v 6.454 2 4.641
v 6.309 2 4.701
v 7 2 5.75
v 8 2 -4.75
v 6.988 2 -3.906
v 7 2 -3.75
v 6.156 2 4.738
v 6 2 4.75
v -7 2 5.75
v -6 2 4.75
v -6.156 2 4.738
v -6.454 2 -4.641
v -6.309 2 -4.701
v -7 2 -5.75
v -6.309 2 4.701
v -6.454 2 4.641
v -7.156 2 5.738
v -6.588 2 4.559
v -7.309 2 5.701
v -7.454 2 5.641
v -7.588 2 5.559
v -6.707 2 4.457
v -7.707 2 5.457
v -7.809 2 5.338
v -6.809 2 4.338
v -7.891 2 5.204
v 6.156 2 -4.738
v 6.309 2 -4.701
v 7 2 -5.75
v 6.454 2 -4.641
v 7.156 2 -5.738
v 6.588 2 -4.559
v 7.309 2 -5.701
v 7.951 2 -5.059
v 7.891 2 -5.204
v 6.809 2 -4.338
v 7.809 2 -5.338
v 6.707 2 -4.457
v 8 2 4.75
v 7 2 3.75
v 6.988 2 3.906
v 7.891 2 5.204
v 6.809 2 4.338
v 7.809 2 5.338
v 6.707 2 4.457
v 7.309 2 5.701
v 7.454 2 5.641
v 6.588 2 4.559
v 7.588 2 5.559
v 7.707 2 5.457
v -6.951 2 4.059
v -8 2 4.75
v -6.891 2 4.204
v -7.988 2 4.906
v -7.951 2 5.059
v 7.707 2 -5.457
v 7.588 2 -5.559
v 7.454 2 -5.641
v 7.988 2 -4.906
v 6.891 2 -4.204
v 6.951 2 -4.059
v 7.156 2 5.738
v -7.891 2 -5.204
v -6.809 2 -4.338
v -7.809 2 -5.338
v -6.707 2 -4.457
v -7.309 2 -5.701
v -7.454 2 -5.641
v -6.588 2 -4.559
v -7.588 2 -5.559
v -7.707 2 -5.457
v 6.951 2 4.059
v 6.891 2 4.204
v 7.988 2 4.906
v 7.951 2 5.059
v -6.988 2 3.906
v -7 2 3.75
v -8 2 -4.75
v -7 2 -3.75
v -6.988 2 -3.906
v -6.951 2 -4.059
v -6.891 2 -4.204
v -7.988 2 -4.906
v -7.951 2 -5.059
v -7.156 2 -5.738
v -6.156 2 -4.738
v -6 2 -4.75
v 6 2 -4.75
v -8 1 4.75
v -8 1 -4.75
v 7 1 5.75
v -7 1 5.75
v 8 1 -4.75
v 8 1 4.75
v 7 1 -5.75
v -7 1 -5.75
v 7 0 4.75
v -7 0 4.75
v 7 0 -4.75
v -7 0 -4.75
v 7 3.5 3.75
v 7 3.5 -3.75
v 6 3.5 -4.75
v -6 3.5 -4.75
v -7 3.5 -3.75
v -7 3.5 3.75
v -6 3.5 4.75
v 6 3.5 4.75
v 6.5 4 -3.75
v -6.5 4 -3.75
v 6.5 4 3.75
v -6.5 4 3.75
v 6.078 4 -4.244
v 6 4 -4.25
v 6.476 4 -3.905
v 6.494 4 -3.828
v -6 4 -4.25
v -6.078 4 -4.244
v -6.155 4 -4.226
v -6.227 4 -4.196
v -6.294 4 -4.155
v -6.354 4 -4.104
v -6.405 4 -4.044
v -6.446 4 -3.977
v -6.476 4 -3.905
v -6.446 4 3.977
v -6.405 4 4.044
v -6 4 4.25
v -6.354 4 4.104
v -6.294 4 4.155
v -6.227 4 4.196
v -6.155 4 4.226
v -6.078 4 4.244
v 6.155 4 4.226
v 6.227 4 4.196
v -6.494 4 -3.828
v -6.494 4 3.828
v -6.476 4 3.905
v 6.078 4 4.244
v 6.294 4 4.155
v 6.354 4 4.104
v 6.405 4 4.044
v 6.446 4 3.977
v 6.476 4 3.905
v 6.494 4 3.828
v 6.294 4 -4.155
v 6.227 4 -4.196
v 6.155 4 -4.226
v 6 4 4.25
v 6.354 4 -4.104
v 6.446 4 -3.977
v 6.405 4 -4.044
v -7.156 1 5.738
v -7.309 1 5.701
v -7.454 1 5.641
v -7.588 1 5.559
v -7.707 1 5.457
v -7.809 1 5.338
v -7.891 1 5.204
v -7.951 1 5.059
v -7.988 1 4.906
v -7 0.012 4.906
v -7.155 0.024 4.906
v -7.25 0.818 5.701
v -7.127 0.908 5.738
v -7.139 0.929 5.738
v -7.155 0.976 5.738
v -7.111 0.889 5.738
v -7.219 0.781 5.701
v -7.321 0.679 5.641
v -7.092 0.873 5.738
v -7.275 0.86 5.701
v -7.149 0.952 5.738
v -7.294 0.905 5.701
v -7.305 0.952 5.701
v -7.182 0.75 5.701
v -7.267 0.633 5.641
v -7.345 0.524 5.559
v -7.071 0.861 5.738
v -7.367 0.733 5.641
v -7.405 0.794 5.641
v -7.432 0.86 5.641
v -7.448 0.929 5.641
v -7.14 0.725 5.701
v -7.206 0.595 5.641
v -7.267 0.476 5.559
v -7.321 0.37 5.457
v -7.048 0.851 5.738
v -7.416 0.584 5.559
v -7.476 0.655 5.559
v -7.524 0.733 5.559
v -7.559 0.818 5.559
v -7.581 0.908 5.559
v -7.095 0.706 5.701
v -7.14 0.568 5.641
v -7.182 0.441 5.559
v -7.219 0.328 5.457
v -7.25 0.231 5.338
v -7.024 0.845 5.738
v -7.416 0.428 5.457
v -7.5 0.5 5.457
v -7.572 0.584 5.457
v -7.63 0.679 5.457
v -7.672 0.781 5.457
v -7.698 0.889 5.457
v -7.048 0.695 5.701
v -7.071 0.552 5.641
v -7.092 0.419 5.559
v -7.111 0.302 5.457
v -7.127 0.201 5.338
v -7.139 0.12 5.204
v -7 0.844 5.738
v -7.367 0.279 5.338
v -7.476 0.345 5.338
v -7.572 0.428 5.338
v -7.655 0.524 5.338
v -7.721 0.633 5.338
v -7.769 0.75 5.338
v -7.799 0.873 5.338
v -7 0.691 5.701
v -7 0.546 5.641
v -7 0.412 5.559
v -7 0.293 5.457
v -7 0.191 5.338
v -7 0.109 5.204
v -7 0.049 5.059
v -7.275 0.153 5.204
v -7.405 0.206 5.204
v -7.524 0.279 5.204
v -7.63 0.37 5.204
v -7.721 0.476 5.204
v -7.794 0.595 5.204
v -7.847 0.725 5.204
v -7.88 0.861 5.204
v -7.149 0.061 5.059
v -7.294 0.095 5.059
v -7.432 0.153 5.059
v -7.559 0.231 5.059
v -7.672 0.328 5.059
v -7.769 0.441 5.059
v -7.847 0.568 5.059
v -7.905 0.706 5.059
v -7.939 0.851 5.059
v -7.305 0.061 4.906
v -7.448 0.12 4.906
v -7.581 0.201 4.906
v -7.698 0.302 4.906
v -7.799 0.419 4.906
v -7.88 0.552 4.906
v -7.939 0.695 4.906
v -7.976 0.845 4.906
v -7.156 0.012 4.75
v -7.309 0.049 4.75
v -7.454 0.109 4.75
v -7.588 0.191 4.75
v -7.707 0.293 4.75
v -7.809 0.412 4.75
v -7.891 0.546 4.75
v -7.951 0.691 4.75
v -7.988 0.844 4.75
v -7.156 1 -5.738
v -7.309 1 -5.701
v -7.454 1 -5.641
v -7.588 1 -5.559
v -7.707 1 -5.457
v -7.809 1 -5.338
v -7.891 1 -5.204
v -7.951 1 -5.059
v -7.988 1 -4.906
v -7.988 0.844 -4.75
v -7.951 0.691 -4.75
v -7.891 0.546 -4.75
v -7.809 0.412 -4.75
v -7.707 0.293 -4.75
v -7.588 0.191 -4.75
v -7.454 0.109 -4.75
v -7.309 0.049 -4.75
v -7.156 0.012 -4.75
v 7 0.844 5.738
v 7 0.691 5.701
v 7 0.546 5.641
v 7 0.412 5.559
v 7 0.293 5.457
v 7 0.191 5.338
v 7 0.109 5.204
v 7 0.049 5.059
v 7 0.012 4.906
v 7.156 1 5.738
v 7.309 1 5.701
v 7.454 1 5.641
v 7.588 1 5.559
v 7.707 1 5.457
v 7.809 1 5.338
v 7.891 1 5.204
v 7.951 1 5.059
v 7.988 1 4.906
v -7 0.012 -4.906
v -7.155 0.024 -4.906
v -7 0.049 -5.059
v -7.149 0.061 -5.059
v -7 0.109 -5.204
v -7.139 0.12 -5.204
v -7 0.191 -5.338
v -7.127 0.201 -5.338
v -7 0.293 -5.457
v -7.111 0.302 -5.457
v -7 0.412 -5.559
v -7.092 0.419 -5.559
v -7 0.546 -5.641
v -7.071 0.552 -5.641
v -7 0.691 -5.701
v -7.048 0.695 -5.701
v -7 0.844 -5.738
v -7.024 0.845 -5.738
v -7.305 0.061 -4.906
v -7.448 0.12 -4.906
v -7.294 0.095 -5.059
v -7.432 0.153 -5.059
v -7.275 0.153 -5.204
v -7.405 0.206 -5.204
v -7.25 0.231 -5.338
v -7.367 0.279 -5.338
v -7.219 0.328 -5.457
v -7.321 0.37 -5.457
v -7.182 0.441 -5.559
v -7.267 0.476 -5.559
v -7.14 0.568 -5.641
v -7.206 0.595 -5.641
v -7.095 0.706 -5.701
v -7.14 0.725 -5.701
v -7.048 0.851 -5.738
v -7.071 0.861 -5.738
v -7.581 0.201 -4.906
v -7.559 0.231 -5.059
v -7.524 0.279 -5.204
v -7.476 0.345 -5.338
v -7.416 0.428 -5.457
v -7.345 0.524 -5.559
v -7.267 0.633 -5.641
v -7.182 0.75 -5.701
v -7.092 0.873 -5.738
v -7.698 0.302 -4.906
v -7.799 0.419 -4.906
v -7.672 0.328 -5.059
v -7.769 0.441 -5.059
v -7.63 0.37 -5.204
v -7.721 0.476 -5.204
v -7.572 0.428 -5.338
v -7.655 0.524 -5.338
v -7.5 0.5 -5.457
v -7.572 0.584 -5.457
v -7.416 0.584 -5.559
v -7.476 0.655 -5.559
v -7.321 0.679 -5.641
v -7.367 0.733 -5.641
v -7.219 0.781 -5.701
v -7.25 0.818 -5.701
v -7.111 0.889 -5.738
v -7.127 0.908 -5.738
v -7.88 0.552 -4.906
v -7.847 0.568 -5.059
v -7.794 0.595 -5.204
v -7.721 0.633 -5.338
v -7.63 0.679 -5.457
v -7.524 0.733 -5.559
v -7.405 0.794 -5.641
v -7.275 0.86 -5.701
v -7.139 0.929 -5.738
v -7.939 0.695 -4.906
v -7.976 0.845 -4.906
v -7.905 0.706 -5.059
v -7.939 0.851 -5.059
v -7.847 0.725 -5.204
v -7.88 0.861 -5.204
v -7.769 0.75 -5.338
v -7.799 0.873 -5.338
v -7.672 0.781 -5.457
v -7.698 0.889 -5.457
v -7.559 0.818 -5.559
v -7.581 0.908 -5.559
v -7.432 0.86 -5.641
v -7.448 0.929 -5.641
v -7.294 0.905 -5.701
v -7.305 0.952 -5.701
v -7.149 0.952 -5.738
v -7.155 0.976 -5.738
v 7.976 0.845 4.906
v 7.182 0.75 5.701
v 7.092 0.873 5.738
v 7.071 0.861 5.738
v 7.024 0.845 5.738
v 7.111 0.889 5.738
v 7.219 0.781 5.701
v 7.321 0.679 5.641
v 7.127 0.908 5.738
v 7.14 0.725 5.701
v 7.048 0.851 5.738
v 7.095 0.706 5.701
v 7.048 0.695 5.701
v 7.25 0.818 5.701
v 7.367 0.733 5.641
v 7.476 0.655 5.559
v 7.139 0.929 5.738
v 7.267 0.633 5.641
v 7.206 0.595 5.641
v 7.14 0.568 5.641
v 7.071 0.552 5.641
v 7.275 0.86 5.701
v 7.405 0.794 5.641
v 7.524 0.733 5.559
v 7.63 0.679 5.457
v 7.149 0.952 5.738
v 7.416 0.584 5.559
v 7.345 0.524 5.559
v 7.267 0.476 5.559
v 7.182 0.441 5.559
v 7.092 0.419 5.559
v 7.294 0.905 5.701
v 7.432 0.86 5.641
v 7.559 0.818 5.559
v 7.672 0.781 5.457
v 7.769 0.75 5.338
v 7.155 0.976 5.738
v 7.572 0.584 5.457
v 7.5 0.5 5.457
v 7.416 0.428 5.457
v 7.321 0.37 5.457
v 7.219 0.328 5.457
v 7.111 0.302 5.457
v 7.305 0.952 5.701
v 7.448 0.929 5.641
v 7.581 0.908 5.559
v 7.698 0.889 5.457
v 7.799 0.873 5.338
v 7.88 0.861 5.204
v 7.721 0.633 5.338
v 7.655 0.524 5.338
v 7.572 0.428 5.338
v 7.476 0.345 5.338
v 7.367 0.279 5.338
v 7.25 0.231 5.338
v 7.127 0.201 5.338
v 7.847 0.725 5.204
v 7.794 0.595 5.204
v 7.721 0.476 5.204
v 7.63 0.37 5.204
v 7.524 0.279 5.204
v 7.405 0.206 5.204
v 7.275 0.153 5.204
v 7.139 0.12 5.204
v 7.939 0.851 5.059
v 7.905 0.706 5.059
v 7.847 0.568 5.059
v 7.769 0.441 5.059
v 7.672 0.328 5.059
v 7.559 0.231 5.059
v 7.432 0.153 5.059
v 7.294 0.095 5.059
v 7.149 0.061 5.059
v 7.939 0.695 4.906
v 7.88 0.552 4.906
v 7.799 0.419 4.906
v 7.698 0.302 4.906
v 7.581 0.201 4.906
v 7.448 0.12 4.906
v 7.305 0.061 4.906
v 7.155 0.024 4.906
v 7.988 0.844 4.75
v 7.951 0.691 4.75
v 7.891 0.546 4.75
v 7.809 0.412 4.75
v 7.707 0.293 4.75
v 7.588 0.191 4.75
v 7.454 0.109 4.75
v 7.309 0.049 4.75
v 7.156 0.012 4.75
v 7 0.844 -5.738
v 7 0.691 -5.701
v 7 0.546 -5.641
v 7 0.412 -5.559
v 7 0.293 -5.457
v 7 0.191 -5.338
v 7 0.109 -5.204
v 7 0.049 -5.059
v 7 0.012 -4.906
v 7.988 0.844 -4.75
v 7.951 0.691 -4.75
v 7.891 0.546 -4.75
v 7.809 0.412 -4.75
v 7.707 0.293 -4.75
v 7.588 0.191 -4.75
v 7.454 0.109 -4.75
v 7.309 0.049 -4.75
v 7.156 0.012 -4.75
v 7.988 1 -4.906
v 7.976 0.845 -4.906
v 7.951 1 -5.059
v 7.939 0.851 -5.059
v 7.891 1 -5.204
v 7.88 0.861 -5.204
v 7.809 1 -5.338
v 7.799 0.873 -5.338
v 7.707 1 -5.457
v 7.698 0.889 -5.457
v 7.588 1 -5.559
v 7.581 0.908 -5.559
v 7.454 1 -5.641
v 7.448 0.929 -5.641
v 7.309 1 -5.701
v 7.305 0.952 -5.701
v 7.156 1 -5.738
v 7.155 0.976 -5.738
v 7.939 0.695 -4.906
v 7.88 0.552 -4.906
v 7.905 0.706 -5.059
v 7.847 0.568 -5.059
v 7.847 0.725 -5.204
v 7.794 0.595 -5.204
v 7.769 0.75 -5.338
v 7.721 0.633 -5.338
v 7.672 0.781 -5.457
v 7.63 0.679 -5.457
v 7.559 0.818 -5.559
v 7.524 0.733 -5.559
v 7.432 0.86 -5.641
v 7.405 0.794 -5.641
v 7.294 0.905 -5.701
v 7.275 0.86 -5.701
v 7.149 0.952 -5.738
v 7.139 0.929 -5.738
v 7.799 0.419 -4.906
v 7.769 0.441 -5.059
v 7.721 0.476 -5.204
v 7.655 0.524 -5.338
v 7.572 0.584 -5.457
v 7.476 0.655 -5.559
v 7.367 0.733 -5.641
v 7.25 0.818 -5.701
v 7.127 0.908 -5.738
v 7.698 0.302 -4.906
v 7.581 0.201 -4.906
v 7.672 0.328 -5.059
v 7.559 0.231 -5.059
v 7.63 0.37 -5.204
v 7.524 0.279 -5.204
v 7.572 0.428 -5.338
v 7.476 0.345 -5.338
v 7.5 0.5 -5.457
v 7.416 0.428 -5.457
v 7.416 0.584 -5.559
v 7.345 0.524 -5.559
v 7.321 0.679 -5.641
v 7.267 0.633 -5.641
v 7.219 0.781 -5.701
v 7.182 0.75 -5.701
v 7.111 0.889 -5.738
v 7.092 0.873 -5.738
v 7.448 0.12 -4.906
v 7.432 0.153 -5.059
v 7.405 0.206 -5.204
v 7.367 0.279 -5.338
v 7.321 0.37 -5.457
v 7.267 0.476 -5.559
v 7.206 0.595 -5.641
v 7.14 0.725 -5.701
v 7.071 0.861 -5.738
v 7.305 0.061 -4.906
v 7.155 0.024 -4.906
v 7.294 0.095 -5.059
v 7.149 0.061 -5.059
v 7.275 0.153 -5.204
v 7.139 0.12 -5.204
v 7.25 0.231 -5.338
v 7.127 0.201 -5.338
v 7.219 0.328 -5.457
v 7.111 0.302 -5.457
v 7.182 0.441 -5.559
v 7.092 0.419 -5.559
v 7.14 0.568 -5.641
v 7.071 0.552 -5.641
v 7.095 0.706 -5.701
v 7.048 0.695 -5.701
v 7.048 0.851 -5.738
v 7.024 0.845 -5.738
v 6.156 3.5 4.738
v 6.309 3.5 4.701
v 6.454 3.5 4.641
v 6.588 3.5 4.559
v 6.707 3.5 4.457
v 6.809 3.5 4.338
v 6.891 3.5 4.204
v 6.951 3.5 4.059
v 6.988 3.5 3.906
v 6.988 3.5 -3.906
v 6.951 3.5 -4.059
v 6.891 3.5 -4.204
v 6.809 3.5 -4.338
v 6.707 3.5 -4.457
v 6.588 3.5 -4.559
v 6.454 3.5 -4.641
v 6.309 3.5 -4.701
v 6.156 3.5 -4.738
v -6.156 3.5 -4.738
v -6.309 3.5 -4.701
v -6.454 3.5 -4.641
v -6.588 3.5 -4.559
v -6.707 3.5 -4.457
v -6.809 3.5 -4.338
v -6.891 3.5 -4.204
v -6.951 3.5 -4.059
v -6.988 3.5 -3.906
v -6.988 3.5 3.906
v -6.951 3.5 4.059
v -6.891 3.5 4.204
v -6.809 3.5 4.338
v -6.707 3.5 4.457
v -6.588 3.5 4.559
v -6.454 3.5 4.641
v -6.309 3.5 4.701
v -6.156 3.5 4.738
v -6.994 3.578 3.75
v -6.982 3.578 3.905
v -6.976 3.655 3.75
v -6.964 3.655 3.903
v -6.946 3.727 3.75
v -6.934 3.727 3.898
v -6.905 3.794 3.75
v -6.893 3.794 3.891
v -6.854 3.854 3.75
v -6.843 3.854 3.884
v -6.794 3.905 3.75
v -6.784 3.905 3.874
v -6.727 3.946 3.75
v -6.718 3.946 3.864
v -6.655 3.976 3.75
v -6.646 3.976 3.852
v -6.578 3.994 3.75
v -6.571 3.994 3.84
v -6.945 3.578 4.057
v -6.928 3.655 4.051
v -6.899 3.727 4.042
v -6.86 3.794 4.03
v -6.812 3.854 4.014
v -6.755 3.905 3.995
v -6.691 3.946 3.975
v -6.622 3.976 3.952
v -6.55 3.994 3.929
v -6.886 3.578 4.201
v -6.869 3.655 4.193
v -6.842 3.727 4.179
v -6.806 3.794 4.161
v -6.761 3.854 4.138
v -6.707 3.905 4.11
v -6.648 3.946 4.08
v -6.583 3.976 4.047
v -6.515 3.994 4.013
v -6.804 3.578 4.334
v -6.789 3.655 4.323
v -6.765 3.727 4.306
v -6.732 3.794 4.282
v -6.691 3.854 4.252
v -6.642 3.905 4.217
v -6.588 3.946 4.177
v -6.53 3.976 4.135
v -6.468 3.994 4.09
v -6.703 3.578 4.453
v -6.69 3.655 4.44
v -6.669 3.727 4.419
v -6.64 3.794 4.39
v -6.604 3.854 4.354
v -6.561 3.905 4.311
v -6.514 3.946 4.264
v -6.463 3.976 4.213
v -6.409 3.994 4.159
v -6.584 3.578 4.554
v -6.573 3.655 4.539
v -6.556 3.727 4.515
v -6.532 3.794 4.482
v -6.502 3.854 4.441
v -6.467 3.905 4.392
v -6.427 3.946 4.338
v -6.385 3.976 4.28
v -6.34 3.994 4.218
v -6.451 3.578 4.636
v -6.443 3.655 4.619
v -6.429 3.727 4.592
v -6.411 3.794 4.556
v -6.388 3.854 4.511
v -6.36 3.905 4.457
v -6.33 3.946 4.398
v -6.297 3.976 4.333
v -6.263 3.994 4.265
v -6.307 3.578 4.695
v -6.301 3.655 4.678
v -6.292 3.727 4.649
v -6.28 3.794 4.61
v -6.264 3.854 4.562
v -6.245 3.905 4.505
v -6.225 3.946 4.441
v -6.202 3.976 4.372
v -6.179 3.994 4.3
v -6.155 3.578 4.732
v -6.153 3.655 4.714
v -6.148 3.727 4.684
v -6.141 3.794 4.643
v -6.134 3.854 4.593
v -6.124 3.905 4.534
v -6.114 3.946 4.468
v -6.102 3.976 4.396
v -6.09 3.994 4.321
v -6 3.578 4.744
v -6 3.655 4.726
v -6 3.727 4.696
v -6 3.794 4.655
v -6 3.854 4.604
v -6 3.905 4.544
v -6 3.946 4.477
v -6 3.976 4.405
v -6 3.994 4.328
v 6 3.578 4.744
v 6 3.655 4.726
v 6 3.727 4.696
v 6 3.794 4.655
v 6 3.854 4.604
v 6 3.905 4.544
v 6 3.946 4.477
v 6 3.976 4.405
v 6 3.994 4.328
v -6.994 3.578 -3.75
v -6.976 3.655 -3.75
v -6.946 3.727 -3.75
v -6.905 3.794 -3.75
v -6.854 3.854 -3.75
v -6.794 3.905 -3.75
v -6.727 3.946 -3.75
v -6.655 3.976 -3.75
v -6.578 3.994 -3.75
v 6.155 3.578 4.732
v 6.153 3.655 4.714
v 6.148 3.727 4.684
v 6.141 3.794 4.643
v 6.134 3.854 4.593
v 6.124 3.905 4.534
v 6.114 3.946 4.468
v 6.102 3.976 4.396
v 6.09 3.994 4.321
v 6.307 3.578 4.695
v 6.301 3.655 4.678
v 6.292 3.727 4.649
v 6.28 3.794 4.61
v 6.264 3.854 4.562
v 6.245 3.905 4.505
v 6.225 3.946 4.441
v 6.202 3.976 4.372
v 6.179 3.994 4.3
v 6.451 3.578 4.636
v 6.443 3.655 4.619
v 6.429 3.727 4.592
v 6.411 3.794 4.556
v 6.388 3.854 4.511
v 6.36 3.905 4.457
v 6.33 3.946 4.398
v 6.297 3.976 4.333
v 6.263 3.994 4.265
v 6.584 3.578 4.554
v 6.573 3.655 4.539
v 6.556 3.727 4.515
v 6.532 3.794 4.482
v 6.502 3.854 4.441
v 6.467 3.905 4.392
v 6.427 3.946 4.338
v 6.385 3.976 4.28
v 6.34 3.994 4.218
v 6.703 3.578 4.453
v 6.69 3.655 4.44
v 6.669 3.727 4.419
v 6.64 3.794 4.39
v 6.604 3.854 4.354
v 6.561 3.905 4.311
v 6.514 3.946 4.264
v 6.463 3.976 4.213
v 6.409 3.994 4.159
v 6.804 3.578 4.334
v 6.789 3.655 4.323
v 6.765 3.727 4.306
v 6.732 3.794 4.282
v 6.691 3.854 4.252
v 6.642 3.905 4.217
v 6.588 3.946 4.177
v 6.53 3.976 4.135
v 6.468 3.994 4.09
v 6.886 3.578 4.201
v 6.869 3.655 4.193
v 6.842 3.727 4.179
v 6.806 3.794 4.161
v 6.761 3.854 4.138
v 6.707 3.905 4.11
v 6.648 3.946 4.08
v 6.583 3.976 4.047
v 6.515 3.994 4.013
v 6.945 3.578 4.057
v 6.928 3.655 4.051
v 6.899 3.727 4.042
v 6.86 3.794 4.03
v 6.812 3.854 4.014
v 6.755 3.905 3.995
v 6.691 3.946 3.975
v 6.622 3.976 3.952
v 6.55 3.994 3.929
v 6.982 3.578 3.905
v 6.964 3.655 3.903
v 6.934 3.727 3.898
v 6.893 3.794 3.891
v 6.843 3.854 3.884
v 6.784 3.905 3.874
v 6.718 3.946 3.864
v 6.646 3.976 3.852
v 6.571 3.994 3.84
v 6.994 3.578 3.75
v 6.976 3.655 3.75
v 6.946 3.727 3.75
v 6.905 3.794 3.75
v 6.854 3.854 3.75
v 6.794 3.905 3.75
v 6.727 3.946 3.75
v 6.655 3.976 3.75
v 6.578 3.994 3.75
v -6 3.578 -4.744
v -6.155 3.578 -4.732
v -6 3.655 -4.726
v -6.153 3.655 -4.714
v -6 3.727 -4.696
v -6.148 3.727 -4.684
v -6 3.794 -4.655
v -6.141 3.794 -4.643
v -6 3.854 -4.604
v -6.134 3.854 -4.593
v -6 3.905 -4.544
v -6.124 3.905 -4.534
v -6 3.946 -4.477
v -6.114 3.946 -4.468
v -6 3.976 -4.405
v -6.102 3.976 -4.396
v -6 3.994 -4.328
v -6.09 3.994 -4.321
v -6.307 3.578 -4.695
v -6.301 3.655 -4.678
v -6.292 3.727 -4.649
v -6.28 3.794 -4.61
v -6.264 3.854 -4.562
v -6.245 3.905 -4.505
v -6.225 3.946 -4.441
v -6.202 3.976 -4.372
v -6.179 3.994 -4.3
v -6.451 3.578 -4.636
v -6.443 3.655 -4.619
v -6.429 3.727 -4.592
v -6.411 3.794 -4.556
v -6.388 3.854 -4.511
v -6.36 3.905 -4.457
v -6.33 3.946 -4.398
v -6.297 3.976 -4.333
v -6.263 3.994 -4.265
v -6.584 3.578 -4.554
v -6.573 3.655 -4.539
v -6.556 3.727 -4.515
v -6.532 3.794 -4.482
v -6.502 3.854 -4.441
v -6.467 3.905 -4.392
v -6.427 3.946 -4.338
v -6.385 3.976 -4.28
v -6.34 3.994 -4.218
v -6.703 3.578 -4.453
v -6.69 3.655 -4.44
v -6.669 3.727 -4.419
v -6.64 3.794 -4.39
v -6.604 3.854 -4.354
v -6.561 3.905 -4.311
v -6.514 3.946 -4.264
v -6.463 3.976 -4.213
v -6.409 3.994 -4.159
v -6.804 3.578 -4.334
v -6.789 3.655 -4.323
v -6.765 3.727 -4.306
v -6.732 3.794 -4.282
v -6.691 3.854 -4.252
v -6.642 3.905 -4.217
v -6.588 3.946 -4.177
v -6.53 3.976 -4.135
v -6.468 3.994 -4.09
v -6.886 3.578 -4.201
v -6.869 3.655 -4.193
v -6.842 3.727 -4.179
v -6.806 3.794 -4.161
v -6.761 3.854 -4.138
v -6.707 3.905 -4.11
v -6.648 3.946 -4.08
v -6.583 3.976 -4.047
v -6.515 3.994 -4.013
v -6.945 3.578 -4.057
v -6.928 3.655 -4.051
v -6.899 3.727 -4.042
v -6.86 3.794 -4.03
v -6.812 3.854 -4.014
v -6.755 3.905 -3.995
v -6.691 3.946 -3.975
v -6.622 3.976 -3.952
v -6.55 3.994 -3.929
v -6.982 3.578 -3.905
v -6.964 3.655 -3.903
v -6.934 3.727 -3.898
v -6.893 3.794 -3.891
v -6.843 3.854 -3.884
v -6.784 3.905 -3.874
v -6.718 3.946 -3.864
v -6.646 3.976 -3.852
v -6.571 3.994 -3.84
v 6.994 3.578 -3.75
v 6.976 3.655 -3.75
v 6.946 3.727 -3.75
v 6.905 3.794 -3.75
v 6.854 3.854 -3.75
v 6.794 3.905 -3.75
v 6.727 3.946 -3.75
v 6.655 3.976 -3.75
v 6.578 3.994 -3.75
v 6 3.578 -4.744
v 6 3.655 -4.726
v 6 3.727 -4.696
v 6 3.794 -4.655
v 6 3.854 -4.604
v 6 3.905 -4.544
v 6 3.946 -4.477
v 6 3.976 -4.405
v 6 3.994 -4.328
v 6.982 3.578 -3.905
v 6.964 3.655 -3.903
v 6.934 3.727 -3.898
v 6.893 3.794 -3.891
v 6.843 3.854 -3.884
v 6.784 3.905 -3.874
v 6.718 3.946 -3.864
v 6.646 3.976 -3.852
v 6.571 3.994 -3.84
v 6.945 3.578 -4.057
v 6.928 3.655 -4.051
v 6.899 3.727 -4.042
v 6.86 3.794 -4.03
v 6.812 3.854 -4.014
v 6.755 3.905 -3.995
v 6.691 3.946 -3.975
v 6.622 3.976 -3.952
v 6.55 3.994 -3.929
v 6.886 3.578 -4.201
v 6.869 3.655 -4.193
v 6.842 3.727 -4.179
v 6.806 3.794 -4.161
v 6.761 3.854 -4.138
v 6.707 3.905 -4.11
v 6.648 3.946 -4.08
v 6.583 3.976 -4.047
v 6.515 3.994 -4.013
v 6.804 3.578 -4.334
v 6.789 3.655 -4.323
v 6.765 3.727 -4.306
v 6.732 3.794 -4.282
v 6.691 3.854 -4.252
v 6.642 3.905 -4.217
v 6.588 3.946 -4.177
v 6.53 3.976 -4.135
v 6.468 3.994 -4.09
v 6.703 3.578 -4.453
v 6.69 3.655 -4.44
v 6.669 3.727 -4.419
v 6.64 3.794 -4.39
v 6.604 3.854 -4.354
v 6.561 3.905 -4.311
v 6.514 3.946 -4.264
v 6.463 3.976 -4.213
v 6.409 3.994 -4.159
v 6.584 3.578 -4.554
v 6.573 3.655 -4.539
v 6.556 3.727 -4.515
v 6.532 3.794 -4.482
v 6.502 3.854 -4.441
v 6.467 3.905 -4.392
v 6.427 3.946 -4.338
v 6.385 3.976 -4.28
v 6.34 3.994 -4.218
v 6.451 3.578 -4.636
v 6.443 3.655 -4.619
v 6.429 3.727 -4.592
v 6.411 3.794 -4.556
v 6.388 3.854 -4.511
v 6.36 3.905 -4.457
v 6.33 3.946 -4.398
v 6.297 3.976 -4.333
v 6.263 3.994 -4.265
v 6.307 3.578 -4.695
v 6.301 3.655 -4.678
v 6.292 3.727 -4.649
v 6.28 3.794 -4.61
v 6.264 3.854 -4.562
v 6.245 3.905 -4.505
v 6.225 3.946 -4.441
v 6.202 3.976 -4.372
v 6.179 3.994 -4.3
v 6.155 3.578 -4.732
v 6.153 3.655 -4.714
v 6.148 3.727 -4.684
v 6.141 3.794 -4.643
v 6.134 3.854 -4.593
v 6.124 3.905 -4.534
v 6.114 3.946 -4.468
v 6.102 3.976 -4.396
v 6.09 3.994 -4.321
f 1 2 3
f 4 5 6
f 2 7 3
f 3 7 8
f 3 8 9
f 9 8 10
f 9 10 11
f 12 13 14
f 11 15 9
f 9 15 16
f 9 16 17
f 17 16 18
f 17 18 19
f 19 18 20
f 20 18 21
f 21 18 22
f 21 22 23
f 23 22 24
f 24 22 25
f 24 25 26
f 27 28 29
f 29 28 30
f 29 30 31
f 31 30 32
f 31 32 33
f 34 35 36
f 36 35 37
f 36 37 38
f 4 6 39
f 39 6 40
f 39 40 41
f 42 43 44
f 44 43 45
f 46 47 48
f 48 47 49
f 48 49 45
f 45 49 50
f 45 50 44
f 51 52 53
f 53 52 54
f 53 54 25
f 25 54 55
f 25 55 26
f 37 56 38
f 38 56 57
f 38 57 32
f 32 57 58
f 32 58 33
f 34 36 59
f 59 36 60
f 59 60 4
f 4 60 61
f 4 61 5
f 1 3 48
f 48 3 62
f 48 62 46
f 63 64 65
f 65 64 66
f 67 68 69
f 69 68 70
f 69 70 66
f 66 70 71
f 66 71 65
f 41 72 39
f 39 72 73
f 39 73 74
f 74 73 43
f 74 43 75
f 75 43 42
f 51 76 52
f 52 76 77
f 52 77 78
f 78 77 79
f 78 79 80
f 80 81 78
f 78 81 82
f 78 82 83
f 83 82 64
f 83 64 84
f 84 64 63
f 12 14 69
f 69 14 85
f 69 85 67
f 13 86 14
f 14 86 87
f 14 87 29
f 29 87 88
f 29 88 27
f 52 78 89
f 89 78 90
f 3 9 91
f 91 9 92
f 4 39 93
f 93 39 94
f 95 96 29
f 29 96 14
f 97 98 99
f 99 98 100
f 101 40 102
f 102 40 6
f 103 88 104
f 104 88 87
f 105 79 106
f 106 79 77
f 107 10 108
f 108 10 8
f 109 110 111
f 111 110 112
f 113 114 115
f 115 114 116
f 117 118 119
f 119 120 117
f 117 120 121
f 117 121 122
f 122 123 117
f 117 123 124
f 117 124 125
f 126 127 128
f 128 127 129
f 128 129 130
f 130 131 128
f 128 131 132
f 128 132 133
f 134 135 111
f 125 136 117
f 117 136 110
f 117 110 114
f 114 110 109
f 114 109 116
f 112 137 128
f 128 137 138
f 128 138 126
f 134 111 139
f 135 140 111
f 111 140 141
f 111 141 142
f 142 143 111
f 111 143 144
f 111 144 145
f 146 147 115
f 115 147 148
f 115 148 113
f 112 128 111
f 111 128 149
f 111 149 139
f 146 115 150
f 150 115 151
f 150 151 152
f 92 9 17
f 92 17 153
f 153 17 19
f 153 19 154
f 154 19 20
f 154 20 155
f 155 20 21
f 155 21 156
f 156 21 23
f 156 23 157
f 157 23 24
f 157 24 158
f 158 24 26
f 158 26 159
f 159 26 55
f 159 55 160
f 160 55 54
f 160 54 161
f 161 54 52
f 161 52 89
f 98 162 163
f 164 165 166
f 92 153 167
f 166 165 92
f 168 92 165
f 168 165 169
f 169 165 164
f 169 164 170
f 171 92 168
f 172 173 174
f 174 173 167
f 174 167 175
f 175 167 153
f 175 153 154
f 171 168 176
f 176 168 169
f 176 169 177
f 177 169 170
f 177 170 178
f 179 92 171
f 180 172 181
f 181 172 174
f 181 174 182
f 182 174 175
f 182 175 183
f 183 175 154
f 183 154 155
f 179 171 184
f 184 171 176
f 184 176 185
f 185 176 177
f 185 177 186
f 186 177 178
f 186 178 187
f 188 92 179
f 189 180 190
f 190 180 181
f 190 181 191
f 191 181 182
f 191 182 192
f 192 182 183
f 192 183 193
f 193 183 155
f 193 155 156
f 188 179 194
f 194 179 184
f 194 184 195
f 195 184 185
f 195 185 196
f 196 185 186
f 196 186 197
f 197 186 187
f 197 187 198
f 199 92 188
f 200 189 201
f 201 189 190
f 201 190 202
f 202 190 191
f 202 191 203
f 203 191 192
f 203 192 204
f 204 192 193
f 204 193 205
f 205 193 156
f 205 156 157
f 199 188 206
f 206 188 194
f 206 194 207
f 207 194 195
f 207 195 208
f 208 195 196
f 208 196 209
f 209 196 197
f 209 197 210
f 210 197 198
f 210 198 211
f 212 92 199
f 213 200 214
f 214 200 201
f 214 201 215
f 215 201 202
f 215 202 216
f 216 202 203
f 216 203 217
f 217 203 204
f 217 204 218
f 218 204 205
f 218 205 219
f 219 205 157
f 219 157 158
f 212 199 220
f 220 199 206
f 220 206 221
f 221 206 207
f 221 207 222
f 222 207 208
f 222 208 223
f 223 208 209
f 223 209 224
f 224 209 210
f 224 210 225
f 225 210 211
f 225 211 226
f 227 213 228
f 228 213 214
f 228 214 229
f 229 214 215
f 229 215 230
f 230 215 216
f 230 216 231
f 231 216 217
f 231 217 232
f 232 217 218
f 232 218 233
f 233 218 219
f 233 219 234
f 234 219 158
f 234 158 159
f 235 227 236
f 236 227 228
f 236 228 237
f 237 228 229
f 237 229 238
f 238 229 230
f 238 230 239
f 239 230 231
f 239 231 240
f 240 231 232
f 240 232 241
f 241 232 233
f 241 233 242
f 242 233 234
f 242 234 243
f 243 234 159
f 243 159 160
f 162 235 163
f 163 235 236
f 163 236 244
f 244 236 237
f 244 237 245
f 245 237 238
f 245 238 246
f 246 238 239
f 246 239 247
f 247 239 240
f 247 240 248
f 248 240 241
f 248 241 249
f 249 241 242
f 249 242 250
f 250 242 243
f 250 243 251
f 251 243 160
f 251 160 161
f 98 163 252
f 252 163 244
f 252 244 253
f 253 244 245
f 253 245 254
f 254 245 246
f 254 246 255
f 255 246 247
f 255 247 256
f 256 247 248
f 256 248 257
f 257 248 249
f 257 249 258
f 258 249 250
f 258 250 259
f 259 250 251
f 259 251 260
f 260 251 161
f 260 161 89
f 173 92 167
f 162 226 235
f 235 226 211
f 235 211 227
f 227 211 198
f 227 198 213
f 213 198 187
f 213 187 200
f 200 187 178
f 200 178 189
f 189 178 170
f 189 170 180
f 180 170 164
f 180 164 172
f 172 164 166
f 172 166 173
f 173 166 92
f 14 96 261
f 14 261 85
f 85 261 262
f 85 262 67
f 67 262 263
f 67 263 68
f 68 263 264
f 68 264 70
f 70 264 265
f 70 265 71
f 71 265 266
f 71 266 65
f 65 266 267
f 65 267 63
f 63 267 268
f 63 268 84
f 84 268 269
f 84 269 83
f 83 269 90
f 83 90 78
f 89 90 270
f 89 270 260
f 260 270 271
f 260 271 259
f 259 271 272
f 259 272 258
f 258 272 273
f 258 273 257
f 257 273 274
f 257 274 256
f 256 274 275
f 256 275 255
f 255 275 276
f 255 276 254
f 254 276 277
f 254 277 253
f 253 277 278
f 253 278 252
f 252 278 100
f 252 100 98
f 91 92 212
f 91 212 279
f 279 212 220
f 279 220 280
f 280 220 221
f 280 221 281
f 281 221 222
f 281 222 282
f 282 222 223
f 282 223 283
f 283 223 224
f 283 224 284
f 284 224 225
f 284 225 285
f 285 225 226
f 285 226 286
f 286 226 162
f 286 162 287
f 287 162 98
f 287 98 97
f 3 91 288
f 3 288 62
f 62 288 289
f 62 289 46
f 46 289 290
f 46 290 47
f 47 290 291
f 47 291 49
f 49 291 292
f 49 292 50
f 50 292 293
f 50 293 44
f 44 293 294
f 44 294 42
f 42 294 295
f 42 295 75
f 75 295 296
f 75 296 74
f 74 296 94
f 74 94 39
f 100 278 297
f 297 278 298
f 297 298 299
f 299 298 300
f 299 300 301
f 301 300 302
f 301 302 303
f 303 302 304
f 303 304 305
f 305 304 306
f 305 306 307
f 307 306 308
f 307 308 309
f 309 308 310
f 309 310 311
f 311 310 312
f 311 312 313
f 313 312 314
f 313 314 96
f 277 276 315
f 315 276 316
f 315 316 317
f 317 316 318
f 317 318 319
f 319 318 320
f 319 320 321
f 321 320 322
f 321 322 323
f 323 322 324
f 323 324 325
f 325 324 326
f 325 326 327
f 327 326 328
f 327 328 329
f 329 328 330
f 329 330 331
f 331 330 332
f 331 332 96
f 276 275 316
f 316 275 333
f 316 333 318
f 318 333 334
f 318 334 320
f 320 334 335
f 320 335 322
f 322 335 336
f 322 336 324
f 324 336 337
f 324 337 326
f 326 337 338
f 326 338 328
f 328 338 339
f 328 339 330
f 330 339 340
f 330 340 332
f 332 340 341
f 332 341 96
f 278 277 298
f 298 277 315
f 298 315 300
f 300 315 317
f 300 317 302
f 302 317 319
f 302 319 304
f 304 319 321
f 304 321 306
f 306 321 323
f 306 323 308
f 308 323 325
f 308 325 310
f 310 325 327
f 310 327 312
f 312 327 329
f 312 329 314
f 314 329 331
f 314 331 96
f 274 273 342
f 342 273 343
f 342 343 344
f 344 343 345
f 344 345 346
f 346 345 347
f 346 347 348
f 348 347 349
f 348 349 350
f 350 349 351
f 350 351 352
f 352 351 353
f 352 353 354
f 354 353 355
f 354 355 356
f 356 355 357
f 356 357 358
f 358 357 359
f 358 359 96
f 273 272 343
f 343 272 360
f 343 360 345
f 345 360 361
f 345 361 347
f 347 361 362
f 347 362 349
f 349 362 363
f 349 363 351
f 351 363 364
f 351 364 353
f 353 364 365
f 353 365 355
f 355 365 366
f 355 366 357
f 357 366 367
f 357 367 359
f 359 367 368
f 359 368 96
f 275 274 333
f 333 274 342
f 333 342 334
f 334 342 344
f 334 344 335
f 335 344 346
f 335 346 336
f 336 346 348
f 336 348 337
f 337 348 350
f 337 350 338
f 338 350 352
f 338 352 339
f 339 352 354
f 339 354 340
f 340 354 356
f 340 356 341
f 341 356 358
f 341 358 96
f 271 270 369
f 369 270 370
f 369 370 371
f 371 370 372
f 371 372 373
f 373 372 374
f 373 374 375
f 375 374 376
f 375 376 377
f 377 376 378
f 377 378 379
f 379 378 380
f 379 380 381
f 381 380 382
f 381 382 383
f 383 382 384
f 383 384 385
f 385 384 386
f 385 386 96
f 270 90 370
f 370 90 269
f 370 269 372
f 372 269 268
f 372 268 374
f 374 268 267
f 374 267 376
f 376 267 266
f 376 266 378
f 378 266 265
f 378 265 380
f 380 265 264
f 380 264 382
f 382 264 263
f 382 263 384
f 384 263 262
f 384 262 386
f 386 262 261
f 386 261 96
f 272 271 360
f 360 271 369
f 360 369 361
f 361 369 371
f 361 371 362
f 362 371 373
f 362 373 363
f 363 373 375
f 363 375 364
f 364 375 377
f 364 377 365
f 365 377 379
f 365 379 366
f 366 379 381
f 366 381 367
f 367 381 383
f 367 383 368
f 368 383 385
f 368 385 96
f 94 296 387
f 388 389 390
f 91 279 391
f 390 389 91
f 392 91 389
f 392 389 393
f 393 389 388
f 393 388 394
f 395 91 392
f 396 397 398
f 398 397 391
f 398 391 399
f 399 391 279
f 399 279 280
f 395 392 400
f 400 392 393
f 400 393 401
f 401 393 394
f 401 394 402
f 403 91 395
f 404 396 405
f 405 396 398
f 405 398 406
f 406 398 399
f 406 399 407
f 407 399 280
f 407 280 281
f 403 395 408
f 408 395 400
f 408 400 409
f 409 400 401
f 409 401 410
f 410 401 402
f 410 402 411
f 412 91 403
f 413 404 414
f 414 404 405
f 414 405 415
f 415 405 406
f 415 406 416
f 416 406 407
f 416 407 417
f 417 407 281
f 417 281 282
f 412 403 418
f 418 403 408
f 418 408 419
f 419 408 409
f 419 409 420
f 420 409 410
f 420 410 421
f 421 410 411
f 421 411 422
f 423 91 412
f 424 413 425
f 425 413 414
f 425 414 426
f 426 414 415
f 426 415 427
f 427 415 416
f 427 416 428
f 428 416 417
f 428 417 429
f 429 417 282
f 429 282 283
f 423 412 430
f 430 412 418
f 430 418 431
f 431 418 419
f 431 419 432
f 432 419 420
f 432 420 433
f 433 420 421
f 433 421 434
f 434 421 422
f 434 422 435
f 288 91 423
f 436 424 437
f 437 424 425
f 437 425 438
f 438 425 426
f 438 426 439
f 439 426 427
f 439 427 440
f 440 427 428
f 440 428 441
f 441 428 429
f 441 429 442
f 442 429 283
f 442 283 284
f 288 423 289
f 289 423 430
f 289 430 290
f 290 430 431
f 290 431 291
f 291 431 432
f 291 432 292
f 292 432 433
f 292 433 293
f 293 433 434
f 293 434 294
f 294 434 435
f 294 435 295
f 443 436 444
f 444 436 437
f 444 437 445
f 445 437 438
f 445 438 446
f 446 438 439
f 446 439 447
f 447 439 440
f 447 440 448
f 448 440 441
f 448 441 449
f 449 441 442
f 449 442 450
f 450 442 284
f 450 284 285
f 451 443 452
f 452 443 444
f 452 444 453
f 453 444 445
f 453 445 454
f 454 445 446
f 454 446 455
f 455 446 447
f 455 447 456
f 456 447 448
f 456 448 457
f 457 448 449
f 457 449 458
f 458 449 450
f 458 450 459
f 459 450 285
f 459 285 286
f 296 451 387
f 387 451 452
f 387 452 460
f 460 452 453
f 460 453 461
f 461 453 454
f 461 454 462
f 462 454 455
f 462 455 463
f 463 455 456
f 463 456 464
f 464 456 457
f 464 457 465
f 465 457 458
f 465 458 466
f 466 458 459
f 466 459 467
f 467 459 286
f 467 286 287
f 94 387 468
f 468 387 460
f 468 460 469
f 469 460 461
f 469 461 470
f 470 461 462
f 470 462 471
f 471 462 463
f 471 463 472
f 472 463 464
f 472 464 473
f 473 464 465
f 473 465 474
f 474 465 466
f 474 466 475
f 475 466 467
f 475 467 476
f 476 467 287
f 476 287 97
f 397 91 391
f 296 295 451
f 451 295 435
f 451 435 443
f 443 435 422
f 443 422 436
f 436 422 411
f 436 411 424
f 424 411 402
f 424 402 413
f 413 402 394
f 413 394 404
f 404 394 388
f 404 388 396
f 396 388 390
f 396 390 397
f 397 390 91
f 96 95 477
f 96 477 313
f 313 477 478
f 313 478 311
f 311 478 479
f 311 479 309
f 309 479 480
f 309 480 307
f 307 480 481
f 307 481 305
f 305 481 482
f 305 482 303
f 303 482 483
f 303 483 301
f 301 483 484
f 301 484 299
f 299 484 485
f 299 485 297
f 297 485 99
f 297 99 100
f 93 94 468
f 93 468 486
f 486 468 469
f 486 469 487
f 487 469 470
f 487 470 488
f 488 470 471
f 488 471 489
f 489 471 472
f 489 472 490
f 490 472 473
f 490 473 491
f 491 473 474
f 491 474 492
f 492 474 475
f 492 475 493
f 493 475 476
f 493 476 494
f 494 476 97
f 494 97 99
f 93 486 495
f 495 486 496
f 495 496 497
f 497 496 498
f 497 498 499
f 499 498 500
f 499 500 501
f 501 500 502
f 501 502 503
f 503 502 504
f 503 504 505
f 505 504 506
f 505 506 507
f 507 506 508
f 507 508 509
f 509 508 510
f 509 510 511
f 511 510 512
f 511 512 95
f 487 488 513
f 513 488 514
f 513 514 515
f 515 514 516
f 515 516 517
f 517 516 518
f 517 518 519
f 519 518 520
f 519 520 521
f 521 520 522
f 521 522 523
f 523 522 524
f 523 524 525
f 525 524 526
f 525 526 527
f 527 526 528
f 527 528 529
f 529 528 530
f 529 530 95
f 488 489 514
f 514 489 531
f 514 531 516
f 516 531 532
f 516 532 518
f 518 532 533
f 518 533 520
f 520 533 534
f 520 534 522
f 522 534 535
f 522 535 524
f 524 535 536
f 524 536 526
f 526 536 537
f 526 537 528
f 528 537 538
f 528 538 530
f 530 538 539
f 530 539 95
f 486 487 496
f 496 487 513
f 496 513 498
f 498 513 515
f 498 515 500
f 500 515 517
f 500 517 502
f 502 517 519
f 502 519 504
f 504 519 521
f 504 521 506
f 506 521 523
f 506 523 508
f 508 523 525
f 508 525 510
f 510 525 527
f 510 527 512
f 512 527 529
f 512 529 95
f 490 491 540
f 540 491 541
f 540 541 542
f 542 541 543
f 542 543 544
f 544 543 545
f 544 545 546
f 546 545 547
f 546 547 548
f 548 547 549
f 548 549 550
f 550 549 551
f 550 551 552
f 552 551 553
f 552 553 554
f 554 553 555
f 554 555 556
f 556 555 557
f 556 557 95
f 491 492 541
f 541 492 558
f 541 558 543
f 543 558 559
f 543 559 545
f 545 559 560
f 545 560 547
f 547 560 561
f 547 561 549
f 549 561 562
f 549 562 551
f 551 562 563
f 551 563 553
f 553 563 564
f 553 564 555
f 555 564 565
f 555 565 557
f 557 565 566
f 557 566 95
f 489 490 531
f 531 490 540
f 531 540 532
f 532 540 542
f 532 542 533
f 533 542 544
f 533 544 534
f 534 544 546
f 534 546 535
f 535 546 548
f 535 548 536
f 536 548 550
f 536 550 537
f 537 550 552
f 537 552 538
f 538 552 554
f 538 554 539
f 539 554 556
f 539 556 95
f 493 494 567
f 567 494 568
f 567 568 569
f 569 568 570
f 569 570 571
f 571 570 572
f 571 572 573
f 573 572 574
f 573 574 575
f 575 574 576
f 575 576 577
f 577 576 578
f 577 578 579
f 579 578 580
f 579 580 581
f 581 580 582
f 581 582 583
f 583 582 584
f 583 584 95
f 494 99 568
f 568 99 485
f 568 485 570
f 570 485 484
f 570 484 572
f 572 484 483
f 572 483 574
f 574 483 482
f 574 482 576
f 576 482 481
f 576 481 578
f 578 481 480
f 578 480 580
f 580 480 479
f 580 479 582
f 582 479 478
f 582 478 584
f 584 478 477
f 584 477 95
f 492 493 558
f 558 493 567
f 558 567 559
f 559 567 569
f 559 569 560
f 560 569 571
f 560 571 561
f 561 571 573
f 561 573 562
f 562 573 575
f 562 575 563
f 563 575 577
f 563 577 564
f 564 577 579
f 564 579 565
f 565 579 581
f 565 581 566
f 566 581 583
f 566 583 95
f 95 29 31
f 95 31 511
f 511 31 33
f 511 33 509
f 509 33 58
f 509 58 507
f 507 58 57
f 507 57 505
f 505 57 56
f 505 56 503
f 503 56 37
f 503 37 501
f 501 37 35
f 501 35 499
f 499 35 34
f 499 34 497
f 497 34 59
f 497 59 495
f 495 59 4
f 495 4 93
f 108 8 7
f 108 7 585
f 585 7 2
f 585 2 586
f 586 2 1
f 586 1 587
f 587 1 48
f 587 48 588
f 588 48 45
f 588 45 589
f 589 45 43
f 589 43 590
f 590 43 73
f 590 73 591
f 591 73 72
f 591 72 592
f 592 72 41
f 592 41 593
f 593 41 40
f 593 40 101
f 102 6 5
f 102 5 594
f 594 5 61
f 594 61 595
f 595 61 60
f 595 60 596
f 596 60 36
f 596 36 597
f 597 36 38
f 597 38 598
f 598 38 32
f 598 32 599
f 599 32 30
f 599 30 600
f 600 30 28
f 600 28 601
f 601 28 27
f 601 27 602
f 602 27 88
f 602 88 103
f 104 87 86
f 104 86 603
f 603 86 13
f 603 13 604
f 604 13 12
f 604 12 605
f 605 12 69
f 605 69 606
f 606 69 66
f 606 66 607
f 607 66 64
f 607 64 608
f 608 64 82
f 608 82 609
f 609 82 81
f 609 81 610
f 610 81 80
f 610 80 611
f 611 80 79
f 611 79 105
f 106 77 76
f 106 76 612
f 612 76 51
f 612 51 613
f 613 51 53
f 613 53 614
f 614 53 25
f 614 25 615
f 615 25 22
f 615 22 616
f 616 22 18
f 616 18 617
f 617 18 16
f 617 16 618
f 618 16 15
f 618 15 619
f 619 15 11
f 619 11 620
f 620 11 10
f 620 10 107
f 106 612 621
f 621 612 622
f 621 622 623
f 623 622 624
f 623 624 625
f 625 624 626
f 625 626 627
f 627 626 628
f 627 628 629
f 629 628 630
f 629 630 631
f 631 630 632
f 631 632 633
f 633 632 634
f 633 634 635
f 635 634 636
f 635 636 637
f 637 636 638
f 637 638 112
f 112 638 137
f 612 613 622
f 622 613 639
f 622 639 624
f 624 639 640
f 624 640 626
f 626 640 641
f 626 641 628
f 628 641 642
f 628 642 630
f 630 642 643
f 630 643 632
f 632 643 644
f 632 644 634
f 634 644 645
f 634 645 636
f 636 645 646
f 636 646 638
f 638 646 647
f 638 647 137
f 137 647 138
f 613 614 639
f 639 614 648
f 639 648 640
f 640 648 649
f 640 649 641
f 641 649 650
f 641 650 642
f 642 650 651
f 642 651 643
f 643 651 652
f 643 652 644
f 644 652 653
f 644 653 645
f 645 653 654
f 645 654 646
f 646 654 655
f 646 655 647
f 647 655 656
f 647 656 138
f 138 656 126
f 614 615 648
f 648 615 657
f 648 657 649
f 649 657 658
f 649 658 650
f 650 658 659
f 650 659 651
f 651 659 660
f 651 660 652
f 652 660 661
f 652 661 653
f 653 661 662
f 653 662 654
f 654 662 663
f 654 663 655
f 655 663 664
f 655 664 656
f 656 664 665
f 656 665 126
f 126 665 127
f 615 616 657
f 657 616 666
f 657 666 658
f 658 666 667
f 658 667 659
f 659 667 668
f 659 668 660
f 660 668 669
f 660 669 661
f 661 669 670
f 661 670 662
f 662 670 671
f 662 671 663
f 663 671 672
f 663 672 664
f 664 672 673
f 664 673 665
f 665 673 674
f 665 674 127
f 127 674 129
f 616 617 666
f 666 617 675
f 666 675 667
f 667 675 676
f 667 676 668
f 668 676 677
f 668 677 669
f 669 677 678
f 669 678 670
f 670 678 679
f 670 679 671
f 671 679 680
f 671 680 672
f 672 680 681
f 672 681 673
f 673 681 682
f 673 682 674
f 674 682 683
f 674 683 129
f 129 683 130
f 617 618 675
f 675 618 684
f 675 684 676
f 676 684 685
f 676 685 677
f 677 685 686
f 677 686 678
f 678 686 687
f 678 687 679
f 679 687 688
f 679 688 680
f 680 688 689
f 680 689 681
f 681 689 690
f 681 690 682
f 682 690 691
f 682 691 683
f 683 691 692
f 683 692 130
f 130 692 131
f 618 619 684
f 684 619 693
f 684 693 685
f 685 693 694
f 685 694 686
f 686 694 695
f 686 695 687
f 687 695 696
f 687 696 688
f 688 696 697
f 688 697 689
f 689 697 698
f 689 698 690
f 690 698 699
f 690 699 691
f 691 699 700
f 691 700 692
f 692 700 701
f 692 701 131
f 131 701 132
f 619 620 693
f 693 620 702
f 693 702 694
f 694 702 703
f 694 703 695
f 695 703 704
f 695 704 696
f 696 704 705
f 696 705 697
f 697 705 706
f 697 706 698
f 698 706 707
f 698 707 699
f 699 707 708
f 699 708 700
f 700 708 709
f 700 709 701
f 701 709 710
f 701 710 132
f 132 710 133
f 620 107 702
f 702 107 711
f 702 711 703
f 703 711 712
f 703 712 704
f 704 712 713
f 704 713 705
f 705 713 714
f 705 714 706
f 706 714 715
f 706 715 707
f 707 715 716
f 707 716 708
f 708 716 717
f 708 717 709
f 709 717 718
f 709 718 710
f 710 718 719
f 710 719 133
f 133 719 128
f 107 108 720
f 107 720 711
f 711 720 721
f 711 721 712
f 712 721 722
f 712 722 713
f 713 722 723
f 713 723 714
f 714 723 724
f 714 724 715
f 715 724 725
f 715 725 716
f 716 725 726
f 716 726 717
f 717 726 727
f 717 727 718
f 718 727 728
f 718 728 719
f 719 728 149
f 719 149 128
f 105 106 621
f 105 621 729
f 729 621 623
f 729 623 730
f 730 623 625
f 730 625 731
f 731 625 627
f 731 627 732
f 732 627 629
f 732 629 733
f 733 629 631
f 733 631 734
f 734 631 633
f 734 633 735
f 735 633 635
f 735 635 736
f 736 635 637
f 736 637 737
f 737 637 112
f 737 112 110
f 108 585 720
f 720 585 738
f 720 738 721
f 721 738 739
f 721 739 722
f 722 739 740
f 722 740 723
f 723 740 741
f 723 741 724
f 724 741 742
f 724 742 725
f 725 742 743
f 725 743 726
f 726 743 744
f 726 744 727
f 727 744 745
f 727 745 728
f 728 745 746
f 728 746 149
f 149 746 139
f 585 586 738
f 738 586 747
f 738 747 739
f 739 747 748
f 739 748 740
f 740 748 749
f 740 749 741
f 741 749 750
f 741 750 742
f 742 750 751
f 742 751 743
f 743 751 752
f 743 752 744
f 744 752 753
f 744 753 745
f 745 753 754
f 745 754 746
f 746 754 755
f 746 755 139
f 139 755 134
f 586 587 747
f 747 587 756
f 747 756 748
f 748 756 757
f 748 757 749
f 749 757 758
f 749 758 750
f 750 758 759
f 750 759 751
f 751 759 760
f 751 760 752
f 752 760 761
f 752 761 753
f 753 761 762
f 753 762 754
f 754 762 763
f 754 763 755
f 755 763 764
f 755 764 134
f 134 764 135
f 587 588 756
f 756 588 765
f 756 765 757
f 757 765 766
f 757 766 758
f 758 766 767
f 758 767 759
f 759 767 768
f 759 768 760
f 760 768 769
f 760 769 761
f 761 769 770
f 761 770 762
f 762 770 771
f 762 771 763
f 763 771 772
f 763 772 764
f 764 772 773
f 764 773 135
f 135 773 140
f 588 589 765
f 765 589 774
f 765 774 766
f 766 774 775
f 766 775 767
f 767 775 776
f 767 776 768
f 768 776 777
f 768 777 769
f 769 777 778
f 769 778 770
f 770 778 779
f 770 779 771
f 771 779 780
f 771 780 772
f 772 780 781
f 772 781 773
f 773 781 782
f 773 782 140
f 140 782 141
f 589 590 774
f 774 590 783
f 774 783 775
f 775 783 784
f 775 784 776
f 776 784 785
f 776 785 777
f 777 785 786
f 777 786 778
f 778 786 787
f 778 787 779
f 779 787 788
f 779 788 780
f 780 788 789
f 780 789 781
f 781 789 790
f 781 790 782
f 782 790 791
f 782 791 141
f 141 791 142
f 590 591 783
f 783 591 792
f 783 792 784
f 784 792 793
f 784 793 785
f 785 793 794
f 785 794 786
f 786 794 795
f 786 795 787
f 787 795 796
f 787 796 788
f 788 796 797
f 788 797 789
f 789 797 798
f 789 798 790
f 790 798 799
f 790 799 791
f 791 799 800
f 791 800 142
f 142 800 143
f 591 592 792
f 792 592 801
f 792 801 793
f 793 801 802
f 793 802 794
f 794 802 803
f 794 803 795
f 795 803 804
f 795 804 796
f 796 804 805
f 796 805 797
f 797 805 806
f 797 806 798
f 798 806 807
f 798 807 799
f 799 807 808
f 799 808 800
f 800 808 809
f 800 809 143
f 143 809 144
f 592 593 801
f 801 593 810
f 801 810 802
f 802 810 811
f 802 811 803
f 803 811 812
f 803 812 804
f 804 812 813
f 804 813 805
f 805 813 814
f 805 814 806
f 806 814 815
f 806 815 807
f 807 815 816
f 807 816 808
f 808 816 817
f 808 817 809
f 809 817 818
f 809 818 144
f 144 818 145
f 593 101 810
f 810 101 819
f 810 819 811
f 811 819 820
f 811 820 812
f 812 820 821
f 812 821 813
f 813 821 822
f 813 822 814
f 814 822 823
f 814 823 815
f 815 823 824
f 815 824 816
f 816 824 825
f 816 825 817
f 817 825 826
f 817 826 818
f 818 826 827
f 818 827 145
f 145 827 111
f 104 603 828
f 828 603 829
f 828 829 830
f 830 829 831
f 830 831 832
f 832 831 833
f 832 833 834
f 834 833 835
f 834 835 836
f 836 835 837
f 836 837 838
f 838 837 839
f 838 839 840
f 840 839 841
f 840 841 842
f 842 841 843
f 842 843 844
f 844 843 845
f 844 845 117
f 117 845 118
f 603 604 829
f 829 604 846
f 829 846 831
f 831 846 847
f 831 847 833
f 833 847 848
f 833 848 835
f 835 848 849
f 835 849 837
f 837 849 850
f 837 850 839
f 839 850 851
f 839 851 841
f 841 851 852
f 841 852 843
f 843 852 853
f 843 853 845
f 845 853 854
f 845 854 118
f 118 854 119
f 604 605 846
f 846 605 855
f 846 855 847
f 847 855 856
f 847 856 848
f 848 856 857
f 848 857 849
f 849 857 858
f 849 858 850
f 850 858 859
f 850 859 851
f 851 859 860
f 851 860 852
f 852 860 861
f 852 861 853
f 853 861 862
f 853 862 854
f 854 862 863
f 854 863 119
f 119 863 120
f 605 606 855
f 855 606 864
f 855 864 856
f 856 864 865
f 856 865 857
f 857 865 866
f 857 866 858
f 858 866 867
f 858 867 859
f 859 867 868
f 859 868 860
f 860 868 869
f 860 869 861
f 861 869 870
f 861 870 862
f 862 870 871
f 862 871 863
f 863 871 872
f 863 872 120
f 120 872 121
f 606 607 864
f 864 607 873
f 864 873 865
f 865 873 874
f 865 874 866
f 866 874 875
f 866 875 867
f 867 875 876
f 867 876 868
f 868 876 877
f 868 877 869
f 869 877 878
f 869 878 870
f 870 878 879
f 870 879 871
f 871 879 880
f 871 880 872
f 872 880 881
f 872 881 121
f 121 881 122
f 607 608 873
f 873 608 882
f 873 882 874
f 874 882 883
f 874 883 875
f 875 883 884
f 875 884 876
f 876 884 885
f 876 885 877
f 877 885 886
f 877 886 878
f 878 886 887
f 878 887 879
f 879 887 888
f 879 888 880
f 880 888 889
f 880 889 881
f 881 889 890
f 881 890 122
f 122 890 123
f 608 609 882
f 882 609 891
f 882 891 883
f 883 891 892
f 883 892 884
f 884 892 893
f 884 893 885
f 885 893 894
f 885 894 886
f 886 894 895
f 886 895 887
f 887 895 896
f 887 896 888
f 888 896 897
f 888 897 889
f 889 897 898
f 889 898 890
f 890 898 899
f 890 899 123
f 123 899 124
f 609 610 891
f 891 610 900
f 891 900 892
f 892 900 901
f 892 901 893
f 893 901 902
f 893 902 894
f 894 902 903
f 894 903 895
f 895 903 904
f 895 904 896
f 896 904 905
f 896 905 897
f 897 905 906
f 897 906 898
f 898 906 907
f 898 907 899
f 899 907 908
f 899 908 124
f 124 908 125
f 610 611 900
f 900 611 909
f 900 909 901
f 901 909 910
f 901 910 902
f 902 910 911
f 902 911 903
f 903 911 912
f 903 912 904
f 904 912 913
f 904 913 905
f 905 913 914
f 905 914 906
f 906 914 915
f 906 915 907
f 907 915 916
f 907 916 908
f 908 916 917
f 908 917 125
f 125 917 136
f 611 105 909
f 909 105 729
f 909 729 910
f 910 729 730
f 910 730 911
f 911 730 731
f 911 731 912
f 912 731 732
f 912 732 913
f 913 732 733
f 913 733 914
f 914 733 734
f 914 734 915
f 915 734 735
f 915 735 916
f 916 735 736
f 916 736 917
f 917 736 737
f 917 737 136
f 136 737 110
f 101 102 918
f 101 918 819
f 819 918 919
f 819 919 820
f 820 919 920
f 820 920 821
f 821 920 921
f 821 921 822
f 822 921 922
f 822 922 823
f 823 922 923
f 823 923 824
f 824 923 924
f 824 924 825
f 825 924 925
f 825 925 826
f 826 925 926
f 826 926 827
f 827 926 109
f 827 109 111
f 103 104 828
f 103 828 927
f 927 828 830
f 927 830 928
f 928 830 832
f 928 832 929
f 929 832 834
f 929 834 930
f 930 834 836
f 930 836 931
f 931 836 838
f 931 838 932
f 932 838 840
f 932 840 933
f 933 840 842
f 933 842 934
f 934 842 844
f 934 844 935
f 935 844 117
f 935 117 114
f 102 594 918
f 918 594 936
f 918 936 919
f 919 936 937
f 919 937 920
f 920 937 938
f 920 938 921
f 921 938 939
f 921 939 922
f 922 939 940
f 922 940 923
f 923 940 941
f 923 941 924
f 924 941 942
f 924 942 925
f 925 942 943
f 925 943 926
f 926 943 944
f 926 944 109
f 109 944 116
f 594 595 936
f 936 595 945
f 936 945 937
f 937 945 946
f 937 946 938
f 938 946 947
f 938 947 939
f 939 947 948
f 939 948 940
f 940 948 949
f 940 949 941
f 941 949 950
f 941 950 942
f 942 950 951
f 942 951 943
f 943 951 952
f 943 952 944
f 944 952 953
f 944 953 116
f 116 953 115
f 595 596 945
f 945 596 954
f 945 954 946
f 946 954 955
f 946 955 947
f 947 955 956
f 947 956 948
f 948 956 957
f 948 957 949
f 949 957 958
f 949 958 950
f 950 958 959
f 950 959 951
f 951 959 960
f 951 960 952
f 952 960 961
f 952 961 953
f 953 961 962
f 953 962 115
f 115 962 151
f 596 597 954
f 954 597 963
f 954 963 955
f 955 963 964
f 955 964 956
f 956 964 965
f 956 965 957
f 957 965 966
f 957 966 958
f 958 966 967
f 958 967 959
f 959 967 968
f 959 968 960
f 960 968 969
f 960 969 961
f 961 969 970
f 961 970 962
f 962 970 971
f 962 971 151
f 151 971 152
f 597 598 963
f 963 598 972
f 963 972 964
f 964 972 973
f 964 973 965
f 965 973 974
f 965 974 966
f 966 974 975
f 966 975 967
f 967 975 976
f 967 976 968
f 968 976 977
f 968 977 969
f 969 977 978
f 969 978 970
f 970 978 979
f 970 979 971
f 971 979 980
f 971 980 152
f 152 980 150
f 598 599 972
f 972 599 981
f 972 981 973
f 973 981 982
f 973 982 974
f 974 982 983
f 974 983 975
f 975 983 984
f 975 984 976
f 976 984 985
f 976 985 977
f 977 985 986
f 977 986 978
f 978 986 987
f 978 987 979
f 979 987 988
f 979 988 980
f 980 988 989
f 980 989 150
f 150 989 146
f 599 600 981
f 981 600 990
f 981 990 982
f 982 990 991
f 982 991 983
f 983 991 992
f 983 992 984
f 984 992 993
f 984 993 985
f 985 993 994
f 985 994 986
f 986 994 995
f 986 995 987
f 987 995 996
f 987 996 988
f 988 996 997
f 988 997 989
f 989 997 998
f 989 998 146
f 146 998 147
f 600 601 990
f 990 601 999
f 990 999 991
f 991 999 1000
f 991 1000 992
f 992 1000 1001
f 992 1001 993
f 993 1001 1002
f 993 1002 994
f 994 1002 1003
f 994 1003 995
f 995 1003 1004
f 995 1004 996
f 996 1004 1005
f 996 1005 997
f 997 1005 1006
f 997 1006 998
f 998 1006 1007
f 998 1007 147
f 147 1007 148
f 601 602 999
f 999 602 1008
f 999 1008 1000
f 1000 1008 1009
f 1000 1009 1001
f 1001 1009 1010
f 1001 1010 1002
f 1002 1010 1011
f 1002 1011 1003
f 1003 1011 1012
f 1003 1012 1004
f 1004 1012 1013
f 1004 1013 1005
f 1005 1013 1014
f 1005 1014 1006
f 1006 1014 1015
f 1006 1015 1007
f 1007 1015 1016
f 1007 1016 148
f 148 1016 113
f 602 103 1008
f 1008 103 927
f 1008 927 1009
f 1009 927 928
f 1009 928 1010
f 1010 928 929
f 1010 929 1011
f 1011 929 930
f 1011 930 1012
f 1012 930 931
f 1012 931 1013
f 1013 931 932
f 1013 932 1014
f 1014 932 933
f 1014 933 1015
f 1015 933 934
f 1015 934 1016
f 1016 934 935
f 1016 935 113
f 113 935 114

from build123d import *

# Parameters (mm, degrees)
CROQUIS1_W              = 16
CROQUIS1_H              = 11.5
SALIENTE_EXTRUIR2_DEPTH = 2
CROQUIS2_W              = 14
CROQUIS2_H              = 9.5
SALIENTE_EXTRUIR3_DEPTH = 2
REDONDEO1_R             = 1
REDONDEO2_R             = 1
REDONDEO3_R             = 0.5


with BuildPart() as part:
    # Croquis1 → Saliente-Extruir2 (new body)
    with BuildSketch(Plane(origin=(0, 0, 0), x_dir=(1, 0, 0), z_dir=(0, 1, 0))):
        Rectangle(CROQUIS1_W, CROQUIS1_H)
    extrude(amount=SALIENTE_EXTRUIR2_DEPTH)

    # Croquis2 → Saliente-Extruir3 (add)
    with BuildSketch(Plane(origin=(0, 2, 0), x_dir=(1, 0, 0), z_dir=(0, 1, 0))):
        Rectangle(CROQUIS2_W, CROQUIS2_H)
    extrude(amount=SALIENTE_EXTRUIR3_DEPTH)

    # Redondeo1
    redondeo1_edges = [part.edges().sort_by_distance(p)[0] for p in [
        (0, 0, 5.75),
        (8, 0, 0),
        (0, 0, -5.75),
        (-8, 0, 0),
        (-8, 1, 5.75),
        (8, 1, 5.75),
        (8, 1, -5.75),
        (-8, 1, -5.75),
    ]]
    fillet(redondeo1_edges, radius=REDONDEO1_R)

    # Redondeo2
    redondeo2_edges = [part.edges().sort_by_distance(p)[0] for p in [
        (7, 3, 4.75),
        (7, 3, -4.75),
        (-7, 3, -4.75),
        (-7, 3, 4.75),
    ]]
    fillet(redondeo2_edges, radius=REDONDEO2_R)

    # Redondeo3
    redondeo3_edges = [part.edges().sort_by_distance(p)[0] for p in [
        (7, 4, 0),
        (0, 4, 4.75),
        (0, 4, -4.75),
        (-7, 4, 0),
        (-6.707106781, 4, 4.457106781),
        (-6.707106781, 4, -4.457106781),
        (6.707106781, 4, -4.457106781),
        (6.707106781, 4, 4.457106781),
    ]]
    fillet(redondeo3_edges, radius=REDONDEO3_R)


solid = part.part
